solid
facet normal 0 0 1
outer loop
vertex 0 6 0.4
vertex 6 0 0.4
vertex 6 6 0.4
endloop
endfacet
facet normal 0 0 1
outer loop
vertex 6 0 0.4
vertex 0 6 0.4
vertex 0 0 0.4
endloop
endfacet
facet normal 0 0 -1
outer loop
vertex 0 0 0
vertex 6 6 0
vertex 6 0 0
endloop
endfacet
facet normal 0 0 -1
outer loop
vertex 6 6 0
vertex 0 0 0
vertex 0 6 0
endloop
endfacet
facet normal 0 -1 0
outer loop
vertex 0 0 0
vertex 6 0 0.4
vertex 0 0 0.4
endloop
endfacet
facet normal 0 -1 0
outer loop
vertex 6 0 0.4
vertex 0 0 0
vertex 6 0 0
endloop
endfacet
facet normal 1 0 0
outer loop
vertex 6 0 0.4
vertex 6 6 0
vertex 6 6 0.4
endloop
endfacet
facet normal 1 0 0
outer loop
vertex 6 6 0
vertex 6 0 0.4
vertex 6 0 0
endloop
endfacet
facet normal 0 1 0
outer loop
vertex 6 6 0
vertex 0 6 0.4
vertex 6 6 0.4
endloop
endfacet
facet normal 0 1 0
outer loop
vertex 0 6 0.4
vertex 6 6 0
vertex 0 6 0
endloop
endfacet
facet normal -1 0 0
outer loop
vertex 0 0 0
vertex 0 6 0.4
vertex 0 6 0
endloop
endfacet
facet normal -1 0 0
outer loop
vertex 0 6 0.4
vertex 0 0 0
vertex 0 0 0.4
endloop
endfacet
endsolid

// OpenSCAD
/* Warning, this is a very basic generator with a lot of approximation 
input data : [XQFN, TWB, 6x6x0.4mm, 56, , A, C04-21448A]
generated by com.zoubworld.electronics.cad.model3d.Basic
Date : Sun Feb 15 10:50:49 CET 2026
*/

//body
color("black")
translate([0,0,0])
cube([6.0,6.0,0.4], center=false);
